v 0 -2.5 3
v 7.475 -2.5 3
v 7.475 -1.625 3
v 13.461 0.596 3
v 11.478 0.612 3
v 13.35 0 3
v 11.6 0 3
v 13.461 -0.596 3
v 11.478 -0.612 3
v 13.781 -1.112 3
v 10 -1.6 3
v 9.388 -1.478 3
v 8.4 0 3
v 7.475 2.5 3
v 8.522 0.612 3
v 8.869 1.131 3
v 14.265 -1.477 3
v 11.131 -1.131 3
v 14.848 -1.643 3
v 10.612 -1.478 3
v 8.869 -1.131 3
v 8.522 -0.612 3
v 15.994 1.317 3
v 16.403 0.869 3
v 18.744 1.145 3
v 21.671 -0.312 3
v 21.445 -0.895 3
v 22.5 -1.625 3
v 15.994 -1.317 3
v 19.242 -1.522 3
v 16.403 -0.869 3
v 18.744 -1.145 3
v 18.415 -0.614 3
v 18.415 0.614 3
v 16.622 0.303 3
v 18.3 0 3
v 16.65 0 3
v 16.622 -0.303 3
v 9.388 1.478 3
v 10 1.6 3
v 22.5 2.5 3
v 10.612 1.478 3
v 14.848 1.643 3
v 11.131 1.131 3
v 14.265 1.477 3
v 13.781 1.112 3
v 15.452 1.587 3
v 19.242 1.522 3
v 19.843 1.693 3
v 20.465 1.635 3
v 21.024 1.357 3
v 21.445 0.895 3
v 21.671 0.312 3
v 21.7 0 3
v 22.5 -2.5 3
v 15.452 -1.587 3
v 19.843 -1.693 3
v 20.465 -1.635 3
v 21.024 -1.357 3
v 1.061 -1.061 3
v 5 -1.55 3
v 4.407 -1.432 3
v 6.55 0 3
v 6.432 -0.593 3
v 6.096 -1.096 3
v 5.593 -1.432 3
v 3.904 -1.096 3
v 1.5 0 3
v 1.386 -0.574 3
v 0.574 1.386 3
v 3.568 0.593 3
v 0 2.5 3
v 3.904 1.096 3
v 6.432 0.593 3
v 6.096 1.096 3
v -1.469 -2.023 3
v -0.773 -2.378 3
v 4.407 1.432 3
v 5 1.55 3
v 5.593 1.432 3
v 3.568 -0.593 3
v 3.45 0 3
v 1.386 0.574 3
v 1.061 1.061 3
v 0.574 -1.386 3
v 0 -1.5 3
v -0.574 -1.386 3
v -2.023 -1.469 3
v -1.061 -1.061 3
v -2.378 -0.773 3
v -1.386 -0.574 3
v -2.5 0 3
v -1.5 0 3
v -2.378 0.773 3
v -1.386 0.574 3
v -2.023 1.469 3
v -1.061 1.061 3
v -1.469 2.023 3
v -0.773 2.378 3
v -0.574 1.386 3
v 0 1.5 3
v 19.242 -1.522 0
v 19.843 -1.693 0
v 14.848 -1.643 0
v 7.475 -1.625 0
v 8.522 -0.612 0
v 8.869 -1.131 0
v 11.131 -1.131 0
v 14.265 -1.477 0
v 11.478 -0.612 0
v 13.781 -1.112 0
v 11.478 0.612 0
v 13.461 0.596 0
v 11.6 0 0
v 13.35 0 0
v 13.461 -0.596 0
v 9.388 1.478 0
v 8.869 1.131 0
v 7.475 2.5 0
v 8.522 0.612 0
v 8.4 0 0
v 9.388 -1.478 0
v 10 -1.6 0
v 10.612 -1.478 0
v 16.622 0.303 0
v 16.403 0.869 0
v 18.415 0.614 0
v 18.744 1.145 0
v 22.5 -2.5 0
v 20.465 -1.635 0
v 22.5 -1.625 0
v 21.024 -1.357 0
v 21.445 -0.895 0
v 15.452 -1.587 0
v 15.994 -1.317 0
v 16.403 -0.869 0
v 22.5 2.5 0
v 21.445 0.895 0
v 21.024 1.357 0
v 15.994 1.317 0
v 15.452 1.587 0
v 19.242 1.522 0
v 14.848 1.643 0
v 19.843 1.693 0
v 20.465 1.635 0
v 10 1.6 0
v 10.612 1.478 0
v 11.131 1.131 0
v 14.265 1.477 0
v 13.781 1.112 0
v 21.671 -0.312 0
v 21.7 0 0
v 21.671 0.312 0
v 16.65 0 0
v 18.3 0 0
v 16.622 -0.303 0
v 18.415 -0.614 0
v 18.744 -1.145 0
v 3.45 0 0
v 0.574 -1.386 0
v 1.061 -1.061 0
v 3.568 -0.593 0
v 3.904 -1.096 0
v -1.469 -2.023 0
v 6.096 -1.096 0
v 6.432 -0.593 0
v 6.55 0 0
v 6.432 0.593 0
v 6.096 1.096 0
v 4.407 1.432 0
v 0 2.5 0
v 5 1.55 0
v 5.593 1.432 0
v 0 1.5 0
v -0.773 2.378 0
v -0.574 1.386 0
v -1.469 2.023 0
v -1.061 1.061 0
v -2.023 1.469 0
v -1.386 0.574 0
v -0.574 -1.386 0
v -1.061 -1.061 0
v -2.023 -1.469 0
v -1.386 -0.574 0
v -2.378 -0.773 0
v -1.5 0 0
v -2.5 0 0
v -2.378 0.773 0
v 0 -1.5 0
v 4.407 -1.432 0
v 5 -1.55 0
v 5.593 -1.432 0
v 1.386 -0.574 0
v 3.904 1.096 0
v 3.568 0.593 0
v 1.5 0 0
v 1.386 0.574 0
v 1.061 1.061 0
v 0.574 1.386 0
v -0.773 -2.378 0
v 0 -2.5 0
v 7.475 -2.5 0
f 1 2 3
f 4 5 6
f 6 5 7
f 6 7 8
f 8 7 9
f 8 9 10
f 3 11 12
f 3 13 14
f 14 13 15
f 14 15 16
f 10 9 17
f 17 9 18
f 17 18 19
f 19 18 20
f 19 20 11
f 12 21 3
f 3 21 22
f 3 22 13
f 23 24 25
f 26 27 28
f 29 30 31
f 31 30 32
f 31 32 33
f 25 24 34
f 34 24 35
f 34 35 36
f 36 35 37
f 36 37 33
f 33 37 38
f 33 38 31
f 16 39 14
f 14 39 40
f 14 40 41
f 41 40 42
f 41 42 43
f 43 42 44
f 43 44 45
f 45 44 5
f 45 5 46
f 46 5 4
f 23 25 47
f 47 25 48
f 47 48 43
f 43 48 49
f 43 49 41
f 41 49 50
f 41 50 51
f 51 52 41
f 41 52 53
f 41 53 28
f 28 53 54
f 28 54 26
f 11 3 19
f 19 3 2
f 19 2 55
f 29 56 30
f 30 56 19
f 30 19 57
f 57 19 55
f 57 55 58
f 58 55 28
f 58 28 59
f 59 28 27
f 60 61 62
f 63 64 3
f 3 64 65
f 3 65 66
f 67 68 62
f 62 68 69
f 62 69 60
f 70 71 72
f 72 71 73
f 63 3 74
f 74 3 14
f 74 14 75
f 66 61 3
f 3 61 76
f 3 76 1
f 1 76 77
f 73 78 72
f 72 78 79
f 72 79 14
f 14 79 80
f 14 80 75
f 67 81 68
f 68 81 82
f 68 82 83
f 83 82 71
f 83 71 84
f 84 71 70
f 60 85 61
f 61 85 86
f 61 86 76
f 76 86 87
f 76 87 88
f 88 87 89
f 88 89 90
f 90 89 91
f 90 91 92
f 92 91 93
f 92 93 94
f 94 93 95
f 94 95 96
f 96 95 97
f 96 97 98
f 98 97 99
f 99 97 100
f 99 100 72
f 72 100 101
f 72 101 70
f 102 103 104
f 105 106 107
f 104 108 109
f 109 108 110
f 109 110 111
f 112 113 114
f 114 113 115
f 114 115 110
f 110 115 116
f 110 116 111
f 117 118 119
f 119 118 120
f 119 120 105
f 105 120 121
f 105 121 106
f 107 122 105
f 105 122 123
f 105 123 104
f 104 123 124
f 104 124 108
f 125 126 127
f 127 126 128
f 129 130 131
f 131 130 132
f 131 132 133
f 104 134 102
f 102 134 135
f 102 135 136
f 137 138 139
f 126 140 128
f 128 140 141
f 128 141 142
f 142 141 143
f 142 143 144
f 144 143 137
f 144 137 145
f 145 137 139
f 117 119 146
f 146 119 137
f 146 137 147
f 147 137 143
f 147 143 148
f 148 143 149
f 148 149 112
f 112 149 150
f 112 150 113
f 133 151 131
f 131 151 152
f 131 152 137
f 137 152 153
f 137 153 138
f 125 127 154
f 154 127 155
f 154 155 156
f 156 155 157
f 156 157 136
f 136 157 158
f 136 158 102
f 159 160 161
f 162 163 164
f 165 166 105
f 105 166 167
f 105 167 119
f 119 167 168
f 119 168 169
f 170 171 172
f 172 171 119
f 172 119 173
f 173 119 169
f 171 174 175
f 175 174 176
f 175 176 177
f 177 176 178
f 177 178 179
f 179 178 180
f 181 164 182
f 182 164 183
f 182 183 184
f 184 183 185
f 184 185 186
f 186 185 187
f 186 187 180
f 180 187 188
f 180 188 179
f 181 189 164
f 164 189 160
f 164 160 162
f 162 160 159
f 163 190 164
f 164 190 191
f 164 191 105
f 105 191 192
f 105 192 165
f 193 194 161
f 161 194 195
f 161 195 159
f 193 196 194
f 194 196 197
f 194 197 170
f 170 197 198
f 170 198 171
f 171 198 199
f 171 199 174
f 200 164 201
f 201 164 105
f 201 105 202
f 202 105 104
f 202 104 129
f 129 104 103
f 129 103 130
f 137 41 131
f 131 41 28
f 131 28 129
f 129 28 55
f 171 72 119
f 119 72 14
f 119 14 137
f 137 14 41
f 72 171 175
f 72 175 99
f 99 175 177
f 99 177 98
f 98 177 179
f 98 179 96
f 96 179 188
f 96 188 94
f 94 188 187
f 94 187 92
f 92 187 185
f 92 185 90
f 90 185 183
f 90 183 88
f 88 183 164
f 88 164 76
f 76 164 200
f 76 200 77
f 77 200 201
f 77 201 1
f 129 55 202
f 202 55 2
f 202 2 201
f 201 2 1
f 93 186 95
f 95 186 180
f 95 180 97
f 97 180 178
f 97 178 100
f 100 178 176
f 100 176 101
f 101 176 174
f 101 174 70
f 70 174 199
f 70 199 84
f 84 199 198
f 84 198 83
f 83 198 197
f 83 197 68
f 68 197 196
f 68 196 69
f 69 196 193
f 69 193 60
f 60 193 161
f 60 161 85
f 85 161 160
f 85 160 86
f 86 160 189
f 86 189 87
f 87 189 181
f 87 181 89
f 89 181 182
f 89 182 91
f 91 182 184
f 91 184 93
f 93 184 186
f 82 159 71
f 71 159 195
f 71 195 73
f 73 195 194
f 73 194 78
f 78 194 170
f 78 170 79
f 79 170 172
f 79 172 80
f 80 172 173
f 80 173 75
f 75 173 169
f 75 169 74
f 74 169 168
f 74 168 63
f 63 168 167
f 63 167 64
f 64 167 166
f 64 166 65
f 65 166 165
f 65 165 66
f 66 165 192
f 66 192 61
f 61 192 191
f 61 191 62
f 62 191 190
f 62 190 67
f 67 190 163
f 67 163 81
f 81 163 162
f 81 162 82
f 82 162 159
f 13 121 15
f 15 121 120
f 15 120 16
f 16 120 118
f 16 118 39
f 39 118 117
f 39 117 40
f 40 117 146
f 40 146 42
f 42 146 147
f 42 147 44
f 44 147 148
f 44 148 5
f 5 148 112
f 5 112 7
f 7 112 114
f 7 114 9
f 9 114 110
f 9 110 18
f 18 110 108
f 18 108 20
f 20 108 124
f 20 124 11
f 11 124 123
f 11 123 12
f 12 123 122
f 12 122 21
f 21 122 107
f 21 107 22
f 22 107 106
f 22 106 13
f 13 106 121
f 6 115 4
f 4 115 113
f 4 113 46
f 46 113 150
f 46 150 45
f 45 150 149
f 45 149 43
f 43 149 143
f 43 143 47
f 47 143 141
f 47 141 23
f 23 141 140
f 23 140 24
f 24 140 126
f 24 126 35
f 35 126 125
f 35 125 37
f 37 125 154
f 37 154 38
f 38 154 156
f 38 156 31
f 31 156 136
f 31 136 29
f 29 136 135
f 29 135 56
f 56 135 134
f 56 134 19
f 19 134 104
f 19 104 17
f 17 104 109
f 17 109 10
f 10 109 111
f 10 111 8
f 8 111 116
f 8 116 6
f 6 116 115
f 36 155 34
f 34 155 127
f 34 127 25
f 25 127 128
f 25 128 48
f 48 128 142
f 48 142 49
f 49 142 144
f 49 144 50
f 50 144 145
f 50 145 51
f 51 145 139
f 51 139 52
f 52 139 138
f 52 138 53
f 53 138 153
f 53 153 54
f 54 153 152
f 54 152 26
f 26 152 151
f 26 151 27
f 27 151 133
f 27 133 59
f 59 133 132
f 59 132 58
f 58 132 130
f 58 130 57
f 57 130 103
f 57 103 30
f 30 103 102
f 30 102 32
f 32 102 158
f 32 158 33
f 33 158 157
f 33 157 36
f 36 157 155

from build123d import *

# Parameters (mm, degrees)
SKETCH_1_R      = 1.5
SKETCH_1_R_2    = 1.55
SKETCH_1_R_3    = 1.6
SKETCH_1_R_4    = 1.65
SKETCH_1_R_5    = 1.7
EXTRUDE_1_DEPTH = 3


with BuildPart() as part:
    # 草图1 → 凸台-拉伸1 (new body)
    with BuildSketch(Plane.XY):
        with BuildLine():
            Line((0, 2.5), (17.5, 2.5))
            Line((17.5, 2.5), (22.5, 2.5))
            Line((22.5, 2.5), (22.5, -2.5))
            Line((22.5, -2.5), (17.5, -2.5))
            Line((17.5, -2.5), (0, -2.5))
            ThreePointArc((0, -2.5), (-2.5, 0), (0, 2.5))
        make_face()
        Circle(SKETCH_1_R, mode=Mode.SUBTRACT)
        with Locations((5, 0)):
            Circle(SKETCH_1_R_2, mode=Mode.SUBTRACT)
        with Locations((10, 0)):
            Circle(SKETCH_1_R_3, mode=Mode.SUBTRACT)
        with Locations((15, 0)):
            Circle(SKETCH_1_R_4, mode=Mode.SUBTRACT)
        with Locations((20, 0)):
            Circle(SKETCH_1_R_5, mode=Mode.SUBTRACT)
    extrude(amount=EXTRUDE_1_DEPTH)


solid = part.part
